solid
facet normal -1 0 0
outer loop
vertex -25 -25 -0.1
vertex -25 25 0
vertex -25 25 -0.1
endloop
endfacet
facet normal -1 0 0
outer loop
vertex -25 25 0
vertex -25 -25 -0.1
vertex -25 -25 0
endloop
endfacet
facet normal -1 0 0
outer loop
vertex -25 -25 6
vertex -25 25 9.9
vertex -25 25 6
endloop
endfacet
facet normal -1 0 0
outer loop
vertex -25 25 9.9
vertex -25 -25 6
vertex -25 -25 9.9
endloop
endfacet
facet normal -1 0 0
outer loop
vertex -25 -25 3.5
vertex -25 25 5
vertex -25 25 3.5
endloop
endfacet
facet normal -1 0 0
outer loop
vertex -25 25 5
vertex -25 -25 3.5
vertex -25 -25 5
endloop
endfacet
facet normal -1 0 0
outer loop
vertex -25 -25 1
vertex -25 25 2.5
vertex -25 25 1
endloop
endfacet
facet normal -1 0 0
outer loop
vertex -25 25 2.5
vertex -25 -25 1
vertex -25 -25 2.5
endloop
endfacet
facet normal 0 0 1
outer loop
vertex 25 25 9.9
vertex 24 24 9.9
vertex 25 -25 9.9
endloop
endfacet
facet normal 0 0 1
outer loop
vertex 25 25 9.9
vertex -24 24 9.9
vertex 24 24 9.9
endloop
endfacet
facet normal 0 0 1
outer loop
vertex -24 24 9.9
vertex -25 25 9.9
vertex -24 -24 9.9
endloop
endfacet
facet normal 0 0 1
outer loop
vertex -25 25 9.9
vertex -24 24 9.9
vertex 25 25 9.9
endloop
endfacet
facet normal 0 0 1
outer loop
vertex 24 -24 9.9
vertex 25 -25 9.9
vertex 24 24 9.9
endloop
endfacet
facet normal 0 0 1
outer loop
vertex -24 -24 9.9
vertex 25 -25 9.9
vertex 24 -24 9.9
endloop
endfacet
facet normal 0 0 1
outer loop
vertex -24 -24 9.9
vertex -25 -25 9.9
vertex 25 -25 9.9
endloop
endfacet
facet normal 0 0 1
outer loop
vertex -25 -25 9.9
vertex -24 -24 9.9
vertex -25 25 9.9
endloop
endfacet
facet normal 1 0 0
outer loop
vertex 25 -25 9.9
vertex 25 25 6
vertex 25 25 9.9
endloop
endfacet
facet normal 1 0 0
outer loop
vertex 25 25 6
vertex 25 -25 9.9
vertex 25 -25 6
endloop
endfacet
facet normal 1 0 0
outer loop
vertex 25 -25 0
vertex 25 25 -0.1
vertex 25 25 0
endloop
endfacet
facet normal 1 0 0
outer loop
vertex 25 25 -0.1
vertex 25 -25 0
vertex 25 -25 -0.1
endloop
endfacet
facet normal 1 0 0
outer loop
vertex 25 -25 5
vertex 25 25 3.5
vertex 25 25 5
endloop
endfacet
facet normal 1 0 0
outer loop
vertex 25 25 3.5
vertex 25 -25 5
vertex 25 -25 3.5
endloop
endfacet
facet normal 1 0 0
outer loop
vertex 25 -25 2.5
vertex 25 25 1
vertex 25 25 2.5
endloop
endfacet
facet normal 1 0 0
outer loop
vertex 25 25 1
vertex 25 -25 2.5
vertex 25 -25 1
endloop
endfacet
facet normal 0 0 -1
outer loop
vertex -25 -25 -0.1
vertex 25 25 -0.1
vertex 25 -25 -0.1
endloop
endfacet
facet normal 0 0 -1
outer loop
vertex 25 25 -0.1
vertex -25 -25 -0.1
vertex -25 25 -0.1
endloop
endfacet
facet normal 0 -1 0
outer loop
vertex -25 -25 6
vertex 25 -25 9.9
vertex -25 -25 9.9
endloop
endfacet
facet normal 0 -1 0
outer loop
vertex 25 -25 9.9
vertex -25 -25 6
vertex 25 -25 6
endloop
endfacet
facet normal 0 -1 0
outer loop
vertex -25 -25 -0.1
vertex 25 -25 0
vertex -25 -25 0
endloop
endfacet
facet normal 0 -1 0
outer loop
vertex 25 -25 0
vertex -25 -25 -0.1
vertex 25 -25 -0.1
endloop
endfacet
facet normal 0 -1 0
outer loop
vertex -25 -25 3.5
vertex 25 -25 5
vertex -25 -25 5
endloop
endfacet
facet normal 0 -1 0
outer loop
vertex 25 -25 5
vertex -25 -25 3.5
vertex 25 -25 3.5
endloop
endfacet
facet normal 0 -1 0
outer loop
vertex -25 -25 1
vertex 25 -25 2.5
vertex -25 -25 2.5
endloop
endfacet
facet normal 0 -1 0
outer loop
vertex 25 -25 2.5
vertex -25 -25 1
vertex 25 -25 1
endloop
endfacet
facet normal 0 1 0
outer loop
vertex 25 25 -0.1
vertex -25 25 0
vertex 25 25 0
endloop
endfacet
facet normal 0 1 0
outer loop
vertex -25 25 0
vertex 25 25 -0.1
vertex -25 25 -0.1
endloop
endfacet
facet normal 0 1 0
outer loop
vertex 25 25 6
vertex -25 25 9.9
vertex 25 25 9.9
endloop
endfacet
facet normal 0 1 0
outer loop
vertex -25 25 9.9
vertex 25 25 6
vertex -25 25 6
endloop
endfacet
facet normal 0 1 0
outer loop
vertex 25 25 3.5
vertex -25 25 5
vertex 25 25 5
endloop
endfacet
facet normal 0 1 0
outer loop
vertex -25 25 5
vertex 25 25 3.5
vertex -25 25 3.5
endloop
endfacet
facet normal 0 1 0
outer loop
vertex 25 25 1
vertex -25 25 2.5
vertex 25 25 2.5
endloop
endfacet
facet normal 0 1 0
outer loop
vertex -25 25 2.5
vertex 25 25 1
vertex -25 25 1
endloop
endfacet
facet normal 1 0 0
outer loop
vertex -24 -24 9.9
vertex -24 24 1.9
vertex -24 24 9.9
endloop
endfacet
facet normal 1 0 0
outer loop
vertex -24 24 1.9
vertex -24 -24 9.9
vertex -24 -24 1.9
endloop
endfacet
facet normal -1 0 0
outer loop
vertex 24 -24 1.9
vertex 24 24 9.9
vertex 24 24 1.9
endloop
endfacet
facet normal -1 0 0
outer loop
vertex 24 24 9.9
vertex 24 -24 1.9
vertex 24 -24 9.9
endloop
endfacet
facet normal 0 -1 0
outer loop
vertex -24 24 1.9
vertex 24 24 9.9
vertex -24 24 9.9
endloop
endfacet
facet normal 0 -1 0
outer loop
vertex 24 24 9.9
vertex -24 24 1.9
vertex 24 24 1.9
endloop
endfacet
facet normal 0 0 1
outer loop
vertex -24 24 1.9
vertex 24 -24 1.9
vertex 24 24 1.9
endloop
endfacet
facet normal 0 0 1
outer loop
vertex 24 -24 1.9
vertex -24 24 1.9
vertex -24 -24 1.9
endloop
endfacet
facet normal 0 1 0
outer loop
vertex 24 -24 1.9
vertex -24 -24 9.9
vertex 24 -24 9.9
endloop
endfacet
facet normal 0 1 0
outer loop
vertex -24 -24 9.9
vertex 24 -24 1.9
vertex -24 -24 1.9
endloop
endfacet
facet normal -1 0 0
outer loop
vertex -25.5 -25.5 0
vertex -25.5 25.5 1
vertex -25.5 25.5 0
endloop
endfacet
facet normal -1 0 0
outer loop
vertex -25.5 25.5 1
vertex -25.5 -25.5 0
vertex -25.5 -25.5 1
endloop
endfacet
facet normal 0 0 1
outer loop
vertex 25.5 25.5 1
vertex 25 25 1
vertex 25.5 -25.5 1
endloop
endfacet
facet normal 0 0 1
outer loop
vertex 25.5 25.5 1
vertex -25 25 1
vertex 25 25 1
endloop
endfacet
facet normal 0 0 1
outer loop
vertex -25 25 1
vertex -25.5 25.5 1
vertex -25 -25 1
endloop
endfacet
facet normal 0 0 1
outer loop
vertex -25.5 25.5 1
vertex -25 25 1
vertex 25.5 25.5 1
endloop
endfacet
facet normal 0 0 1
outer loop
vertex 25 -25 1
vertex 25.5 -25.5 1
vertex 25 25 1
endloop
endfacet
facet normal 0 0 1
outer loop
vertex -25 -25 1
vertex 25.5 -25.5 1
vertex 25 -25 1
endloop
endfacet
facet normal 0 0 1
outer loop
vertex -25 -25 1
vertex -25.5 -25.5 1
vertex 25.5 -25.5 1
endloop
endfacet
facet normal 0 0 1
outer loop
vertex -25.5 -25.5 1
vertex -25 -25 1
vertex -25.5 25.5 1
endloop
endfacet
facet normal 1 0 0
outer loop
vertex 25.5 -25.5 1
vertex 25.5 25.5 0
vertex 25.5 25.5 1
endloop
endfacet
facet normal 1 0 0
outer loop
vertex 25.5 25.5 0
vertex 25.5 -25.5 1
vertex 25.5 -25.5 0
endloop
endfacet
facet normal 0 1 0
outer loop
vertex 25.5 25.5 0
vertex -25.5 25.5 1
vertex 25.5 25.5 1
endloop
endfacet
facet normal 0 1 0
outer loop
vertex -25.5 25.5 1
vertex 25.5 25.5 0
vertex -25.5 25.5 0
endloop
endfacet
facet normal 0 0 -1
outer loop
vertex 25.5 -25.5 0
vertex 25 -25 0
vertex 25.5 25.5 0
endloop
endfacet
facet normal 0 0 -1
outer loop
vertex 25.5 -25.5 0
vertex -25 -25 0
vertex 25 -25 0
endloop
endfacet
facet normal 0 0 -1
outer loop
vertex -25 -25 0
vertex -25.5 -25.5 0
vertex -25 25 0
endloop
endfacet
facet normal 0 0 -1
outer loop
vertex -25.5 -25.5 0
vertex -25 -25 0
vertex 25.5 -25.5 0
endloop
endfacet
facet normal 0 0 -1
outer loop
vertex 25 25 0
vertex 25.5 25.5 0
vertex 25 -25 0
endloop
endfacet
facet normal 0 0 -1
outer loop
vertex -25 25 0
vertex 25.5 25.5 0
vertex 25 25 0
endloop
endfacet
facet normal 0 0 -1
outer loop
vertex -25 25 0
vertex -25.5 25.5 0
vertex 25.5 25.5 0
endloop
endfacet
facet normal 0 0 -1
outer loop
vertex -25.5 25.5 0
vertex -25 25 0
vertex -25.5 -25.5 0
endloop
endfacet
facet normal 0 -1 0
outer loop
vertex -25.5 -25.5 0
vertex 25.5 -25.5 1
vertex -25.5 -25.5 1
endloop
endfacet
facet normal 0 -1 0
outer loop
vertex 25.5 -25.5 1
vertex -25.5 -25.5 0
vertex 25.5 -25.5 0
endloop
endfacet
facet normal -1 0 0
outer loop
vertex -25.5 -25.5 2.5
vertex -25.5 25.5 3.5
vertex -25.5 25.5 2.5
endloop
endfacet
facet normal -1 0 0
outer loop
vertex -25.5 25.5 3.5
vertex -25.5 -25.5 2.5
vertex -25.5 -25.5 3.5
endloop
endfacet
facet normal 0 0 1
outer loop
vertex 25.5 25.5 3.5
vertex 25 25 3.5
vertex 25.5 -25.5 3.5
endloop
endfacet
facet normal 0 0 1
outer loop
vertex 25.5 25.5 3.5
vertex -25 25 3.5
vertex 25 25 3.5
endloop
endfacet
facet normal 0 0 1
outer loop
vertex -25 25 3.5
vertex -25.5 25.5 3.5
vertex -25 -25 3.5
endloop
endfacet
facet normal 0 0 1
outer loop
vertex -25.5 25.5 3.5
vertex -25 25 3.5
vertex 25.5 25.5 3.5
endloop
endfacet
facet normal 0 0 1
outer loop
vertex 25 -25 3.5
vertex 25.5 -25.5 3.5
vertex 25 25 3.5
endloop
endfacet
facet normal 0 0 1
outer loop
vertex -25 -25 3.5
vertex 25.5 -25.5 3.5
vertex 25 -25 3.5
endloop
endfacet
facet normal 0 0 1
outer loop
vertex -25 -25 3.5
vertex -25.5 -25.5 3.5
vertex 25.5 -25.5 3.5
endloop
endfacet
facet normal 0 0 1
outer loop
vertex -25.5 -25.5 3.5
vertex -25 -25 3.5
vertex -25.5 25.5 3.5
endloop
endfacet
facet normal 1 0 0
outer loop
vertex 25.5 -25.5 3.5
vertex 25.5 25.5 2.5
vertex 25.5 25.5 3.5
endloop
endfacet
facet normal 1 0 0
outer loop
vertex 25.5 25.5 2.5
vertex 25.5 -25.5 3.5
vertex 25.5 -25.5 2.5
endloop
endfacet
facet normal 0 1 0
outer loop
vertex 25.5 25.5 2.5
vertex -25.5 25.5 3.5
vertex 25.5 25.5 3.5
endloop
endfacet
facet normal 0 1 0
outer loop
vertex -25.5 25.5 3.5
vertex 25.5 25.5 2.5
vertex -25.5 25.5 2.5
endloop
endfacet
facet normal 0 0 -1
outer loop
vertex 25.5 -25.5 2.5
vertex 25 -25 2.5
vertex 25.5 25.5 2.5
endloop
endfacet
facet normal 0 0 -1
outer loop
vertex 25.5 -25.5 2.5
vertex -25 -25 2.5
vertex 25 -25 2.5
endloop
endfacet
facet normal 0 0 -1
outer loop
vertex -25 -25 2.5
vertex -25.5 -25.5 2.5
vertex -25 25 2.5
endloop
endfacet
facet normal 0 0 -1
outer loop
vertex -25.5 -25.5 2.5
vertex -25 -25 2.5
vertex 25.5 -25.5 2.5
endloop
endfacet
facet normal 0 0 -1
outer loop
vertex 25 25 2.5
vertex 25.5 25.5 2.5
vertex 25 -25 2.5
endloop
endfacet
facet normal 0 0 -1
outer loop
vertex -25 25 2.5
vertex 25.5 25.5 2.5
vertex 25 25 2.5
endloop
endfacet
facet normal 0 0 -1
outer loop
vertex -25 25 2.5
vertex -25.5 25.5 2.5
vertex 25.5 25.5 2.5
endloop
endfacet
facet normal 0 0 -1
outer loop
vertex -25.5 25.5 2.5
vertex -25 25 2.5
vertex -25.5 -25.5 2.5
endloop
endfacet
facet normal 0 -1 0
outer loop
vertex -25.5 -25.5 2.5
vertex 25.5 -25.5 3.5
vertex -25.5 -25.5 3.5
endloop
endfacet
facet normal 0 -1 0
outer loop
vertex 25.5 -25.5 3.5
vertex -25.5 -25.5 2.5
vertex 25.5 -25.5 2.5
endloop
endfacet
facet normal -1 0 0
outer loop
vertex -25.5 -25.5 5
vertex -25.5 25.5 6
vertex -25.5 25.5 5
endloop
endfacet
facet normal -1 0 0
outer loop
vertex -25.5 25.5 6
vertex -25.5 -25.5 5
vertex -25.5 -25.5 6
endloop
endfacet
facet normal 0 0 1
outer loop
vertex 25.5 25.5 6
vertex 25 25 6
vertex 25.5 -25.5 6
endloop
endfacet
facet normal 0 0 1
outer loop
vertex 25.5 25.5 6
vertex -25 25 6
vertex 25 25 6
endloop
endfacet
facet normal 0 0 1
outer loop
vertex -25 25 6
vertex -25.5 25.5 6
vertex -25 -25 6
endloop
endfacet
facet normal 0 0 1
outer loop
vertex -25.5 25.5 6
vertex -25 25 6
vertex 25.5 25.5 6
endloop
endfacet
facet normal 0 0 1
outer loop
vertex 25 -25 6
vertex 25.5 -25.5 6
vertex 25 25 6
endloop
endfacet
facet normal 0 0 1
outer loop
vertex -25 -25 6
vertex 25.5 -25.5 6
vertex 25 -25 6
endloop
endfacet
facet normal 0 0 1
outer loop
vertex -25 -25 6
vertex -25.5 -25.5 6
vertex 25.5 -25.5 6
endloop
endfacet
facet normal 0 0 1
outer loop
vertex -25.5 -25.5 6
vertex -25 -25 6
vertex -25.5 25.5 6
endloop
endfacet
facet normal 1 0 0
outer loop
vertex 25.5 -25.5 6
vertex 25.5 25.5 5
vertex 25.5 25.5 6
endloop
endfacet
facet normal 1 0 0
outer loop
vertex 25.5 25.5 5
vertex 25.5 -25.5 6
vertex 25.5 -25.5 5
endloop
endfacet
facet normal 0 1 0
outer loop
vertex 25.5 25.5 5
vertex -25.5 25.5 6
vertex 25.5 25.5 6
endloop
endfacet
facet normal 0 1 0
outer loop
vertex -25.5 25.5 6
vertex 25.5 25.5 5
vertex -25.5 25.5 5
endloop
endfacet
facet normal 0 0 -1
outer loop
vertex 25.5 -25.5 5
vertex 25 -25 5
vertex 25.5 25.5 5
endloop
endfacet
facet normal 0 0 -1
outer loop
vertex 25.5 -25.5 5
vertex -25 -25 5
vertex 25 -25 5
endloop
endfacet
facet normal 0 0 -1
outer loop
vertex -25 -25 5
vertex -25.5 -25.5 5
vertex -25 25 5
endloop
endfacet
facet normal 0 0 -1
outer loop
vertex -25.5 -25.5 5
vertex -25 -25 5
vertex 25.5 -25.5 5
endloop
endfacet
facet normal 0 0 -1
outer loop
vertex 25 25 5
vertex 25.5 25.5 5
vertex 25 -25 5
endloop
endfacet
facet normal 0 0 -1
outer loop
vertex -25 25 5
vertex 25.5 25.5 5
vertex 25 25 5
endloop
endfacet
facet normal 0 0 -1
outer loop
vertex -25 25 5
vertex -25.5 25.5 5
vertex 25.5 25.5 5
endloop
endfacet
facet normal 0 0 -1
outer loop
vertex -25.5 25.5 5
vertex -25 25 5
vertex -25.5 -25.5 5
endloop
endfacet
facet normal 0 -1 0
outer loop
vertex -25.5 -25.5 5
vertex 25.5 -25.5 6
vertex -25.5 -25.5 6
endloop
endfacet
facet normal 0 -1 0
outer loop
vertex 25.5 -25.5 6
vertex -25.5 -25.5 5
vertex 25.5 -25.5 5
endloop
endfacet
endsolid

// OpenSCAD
$fa=12;
$fs=1;
$fn=50;

//盒子
translate([0,0,4.9])
difference(){
cube([50,50,10],center=true);
translate([0,0,2])   
cube([48,48,10],center=true);
}

module curbe(){
translate([0,0,0.5])
difference(){
cube([51,51,1],center=true);
cube([50,50,2],center=true);
}
}

for(dz=[0,2.5,5])
    translate([0,0,dz])
    curbe();
